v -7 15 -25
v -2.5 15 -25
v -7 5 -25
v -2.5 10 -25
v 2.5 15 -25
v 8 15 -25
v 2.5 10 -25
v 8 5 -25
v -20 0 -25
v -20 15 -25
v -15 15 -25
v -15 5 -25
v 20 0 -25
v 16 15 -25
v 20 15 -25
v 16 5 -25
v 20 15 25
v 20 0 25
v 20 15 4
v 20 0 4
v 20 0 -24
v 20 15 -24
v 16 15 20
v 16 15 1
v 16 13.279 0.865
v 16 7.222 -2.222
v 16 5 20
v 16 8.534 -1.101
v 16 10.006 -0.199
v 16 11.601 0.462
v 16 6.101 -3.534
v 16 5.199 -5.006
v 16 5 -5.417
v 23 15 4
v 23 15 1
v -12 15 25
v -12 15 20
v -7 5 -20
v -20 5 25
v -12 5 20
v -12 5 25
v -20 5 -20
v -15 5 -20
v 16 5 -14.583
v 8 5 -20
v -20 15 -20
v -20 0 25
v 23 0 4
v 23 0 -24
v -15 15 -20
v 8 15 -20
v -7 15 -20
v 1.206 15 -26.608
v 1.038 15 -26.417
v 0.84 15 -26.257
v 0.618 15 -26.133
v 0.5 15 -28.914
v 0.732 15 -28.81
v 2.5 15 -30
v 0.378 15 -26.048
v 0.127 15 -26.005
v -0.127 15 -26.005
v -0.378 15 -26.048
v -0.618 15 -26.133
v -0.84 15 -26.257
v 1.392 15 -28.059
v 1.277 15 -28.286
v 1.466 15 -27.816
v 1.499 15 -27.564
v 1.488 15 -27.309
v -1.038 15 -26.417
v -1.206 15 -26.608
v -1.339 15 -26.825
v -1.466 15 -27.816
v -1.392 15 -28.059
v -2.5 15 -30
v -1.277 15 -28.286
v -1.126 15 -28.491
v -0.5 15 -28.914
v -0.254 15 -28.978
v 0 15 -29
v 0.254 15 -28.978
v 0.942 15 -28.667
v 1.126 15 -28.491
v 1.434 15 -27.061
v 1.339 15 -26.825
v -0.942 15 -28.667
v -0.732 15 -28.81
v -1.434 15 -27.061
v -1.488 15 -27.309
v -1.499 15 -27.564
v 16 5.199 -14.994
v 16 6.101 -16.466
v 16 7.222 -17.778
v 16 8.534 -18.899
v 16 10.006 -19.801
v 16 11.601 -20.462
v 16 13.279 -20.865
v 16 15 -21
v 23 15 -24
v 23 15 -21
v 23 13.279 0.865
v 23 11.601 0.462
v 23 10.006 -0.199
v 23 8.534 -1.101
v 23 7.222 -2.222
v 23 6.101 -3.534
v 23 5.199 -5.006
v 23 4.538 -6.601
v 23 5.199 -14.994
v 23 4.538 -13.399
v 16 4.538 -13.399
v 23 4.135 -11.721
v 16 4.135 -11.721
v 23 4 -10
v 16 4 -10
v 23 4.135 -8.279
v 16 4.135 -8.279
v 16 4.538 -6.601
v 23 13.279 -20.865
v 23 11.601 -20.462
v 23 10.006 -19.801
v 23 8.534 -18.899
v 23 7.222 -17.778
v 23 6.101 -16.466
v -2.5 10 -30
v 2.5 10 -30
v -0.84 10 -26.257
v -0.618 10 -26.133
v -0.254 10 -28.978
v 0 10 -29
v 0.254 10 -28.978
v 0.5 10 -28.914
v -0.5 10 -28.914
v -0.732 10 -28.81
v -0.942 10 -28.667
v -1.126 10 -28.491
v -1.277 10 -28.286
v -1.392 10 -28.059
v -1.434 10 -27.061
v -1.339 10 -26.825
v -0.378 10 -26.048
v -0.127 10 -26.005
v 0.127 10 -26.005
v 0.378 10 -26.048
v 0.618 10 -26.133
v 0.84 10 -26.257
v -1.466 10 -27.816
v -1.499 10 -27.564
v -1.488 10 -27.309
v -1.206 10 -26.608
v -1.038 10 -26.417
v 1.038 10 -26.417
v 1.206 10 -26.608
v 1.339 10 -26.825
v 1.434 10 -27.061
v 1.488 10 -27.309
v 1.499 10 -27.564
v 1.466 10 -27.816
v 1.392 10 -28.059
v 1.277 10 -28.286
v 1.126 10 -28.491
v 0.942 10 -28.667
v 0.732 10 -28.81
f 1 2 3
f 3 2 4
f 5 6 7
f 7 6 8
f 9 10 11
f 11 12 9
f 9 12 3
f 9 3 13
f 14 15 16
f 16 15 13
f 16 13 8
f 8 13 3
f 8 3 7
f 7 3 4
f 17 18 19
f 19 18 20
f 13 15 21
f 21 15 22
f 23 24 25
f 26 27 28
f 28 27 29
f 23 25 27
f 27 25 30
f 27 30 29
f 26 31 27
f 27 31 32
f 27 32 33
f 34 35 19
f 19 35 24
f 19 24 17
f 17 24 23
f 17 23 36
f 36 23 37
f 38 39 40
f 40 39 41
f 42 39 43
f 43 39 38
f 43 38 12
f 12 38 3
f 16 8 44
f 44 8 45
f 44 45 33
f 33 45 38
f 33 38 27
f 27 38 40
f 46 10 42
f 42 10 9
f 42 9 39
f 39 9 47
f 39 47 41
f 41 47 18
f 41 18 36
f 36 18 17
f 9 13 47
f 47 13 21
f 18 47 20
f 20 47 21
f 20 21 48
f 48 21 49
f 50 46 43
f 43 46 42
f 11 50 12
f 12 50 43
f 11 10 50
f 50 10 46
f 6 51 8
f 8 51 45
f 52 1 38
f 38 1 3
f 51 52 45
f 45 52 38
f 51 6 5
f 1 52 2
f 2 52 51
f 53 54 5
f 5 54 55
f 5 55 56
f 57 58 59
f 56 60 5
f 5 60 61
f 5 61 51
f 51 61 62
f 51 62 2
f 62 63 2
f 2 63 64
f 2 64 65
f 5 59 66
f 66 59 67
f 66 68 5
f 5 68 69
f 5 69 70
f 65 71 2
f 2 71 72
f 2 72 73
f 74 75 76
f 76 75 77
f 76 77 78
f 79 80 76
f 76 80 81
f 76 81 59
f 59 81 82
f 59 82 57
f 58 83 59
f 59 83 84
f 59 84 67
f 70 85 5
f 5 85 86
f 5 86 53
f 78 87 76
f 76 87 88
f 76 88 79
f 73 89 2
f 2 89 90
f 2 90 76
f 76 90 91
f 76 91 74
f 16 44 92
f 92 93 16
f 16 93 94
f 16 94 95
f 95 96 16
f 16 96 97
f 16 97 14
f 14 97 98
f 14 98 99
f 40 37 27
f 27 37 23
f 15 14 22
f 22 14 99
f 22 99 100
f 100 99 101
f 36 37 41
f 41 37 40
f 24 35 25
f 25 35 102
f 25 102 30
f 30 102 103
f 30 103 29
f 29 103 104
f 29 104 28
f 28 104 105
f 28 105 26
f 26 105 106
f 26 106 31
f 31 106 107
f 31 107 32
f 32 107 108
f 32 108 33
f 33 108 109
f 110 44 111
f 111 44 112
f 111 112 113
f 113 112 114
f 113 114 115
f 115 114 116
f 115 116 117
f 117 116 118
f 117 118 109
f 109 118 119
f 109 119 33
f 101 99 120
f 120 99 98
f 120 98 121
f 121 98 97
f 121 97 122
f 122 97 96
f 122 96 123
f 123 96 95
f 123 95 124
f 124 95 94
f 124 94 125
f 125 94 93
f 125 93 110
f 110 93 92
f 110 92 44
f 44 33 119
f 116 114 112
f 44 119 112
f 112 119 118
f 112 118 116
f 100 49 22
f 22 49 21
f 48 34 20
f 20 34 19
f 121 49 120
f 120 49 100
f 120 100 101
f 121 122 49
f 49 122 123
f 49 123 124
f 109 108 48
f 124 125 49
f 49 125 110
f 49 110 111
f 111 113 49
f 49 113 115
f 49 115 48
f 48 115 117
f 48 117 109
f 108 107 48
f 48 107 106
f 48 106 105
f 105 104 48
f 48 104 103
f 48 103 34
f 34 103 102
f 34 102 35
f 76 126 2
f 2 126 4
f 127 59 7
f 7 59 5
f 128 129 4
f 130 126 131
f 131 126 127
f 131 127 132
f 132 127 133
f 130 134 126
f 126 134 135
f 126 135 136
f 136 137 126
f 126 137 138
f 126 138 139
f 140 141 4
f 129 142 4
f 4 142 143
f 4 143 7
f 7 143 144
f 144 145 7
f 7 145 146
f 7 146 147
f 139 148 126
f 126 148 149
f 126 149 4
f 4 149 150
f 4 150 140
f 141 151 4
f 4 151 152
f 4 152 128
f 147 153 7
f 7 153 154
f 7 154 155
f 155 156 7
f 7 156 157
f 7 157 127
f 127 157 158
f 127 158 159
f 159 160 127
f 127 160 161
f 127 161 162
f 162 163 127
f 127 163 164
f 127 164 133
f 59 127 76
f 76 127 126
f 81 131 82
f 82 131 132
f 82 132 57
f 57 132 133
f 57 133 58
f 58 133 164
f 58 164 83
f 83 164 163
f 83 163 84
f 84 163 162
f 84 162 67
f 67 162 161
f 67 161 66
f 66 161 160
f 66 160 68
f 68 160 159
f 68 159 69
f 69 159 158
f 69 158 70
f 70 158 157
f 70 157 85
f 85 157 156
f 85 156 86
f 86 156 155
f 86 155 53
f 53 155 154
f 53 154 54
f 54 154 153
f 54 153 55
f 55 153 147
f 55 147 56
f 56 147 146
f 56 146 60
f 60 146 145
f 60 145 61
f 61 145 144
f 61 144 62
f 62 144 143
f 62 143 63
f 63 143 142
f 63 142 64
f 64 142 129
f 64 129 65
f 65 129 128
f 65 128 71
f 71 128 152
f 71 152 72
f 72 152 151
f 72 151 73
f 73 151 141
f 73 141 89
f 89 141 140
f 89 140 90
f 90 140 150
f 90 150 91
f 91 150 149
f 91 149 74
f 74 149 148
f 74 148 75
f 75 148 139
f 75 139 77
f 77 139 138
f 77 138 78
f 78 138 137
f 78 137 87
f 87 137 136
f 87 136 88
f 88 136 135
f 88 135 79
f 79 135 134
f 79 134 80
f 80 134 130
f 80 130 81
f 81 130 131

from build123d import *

# Parameters (mm, degrees)
SKETCH1_W           = 40
SKETCH1_H           = 50
BOSS_EXTRUDE1_DEPTH = 5
SKETCH4_W           = 15
SKETCH4_H           = 5
SKETCH4_W_2         = 5
BOSS_EXTRUDE5_DEPTH = 10
CUT_EXTRUDE2_DEPTH  = 4
BOSS_EXTRUDE7_START = 3
BOSS_EXTRUDE7_DEPTH = 3
SKETCH9_W           = 5
SKETCH9_H           = 5
BOSS_EXTRUDE8_DEPTH = 5
SKETCH10_R          = 1.5
CUT_EXTRUDE3_DEPTH  = 5


with BuildPart() as part:
    # Sketch1 → Boss-Extrude1 (new body)
    with BuildSketch(Plane(origin=(0, 0, 0), x_dir=(1, 0, 0), z_dir=(0, 1, 0))):
        Rectangle(SKETCH1_W, SKETCH1_H)
    extrude(amount=BOSS_EXTRUDE1_DEPTH)

    # Sketch4 → Boss-Extrude5 (add)
    with BuildSketch(Plane(origin=(0, 5, 0), x_dir=(1, 0, 0), z_dir=(0, 1, 0))):
        Polygon((20, -25), (20, 25), (16, 25), (16, -20), (-7, -20), (-7, -25), align=None)
        with Locations((0.5, 22.5)):
            Rectangle(SKETCH4_W, SKETCH4_H)
        with Locations((-17.5, 22.5)):
            Rectangle(SKETCH4_W_2, SKETCH4_H)
        with Locations((-9.5, -22.5)):
            Rectangle(SKETCH4_W_2, SKETCH4_H)
    extrude(amount=BOSS_EXTRUDE5_DEPTH)

    # Sketch7 → Cut-Extrude2 (cut)
    with BuildSketch(Plane(origin=(20, 0, 0), x_dir=(0, 0, -1), z_dir=(1, 0, 0))):
        with BuildLine():
            Line((-1, 15), (21, 15))
            ThreePointArc((21, 15), (10, 4), (-1, 15))
        make_face()
    extrude(amount=-CUT_EXTRUDE2_DEPTH, mode=Mode.SUBTRACT)

    # Sketch8 → Boss-Extrude7 (add)
    with BuildSketch(Plane(origin=(20, 0, 0), x_dir=(0, 0, -1), z_dir=(1, 0, 0)).offset(BOSS_EXTRUDE7_START)):
        with BuildLine():
            Line((-1, 15), (-4, 15))
            Line((-4, 15), (-4, 0))
            Line((-4, 0), (24, 0))
            Line((24, 0), (24, 15))
            Line((24, 15), (21, 15))
            ThreePointArc((21, 15), (10, 4), (-1, 15))
        make_face()
    extrude(amount=-BOSS_EXTRUDE7_DEPTH)

    # Sketch9 → Boss-Extrude8 (add)
    with BuildSketch(Plane(origin=(0, 0, -25), x_dir=(-1, 0, 0), z_dir=(0, 0, -1))):
        with Locations((0, 12.5)):
            Rectangle(SKETCH9_W, SKETCH9_H)
    extrude(amount=BOSS_EXTRUDE8_DEPTH)

    # Sketch10 → Cut-Extrude3 (cut)
    with BuildSketch(Plane.XZ.offset(-10)):
        with Locations(Location((0, -27.5, 0), (0, 0, 270))):
            Circle(SKETCH10_R)
    extrude(amount=-CUT_EXTRUDE3_DEPTH, mode=Mode.SUBTRACT)


solid = part.part
